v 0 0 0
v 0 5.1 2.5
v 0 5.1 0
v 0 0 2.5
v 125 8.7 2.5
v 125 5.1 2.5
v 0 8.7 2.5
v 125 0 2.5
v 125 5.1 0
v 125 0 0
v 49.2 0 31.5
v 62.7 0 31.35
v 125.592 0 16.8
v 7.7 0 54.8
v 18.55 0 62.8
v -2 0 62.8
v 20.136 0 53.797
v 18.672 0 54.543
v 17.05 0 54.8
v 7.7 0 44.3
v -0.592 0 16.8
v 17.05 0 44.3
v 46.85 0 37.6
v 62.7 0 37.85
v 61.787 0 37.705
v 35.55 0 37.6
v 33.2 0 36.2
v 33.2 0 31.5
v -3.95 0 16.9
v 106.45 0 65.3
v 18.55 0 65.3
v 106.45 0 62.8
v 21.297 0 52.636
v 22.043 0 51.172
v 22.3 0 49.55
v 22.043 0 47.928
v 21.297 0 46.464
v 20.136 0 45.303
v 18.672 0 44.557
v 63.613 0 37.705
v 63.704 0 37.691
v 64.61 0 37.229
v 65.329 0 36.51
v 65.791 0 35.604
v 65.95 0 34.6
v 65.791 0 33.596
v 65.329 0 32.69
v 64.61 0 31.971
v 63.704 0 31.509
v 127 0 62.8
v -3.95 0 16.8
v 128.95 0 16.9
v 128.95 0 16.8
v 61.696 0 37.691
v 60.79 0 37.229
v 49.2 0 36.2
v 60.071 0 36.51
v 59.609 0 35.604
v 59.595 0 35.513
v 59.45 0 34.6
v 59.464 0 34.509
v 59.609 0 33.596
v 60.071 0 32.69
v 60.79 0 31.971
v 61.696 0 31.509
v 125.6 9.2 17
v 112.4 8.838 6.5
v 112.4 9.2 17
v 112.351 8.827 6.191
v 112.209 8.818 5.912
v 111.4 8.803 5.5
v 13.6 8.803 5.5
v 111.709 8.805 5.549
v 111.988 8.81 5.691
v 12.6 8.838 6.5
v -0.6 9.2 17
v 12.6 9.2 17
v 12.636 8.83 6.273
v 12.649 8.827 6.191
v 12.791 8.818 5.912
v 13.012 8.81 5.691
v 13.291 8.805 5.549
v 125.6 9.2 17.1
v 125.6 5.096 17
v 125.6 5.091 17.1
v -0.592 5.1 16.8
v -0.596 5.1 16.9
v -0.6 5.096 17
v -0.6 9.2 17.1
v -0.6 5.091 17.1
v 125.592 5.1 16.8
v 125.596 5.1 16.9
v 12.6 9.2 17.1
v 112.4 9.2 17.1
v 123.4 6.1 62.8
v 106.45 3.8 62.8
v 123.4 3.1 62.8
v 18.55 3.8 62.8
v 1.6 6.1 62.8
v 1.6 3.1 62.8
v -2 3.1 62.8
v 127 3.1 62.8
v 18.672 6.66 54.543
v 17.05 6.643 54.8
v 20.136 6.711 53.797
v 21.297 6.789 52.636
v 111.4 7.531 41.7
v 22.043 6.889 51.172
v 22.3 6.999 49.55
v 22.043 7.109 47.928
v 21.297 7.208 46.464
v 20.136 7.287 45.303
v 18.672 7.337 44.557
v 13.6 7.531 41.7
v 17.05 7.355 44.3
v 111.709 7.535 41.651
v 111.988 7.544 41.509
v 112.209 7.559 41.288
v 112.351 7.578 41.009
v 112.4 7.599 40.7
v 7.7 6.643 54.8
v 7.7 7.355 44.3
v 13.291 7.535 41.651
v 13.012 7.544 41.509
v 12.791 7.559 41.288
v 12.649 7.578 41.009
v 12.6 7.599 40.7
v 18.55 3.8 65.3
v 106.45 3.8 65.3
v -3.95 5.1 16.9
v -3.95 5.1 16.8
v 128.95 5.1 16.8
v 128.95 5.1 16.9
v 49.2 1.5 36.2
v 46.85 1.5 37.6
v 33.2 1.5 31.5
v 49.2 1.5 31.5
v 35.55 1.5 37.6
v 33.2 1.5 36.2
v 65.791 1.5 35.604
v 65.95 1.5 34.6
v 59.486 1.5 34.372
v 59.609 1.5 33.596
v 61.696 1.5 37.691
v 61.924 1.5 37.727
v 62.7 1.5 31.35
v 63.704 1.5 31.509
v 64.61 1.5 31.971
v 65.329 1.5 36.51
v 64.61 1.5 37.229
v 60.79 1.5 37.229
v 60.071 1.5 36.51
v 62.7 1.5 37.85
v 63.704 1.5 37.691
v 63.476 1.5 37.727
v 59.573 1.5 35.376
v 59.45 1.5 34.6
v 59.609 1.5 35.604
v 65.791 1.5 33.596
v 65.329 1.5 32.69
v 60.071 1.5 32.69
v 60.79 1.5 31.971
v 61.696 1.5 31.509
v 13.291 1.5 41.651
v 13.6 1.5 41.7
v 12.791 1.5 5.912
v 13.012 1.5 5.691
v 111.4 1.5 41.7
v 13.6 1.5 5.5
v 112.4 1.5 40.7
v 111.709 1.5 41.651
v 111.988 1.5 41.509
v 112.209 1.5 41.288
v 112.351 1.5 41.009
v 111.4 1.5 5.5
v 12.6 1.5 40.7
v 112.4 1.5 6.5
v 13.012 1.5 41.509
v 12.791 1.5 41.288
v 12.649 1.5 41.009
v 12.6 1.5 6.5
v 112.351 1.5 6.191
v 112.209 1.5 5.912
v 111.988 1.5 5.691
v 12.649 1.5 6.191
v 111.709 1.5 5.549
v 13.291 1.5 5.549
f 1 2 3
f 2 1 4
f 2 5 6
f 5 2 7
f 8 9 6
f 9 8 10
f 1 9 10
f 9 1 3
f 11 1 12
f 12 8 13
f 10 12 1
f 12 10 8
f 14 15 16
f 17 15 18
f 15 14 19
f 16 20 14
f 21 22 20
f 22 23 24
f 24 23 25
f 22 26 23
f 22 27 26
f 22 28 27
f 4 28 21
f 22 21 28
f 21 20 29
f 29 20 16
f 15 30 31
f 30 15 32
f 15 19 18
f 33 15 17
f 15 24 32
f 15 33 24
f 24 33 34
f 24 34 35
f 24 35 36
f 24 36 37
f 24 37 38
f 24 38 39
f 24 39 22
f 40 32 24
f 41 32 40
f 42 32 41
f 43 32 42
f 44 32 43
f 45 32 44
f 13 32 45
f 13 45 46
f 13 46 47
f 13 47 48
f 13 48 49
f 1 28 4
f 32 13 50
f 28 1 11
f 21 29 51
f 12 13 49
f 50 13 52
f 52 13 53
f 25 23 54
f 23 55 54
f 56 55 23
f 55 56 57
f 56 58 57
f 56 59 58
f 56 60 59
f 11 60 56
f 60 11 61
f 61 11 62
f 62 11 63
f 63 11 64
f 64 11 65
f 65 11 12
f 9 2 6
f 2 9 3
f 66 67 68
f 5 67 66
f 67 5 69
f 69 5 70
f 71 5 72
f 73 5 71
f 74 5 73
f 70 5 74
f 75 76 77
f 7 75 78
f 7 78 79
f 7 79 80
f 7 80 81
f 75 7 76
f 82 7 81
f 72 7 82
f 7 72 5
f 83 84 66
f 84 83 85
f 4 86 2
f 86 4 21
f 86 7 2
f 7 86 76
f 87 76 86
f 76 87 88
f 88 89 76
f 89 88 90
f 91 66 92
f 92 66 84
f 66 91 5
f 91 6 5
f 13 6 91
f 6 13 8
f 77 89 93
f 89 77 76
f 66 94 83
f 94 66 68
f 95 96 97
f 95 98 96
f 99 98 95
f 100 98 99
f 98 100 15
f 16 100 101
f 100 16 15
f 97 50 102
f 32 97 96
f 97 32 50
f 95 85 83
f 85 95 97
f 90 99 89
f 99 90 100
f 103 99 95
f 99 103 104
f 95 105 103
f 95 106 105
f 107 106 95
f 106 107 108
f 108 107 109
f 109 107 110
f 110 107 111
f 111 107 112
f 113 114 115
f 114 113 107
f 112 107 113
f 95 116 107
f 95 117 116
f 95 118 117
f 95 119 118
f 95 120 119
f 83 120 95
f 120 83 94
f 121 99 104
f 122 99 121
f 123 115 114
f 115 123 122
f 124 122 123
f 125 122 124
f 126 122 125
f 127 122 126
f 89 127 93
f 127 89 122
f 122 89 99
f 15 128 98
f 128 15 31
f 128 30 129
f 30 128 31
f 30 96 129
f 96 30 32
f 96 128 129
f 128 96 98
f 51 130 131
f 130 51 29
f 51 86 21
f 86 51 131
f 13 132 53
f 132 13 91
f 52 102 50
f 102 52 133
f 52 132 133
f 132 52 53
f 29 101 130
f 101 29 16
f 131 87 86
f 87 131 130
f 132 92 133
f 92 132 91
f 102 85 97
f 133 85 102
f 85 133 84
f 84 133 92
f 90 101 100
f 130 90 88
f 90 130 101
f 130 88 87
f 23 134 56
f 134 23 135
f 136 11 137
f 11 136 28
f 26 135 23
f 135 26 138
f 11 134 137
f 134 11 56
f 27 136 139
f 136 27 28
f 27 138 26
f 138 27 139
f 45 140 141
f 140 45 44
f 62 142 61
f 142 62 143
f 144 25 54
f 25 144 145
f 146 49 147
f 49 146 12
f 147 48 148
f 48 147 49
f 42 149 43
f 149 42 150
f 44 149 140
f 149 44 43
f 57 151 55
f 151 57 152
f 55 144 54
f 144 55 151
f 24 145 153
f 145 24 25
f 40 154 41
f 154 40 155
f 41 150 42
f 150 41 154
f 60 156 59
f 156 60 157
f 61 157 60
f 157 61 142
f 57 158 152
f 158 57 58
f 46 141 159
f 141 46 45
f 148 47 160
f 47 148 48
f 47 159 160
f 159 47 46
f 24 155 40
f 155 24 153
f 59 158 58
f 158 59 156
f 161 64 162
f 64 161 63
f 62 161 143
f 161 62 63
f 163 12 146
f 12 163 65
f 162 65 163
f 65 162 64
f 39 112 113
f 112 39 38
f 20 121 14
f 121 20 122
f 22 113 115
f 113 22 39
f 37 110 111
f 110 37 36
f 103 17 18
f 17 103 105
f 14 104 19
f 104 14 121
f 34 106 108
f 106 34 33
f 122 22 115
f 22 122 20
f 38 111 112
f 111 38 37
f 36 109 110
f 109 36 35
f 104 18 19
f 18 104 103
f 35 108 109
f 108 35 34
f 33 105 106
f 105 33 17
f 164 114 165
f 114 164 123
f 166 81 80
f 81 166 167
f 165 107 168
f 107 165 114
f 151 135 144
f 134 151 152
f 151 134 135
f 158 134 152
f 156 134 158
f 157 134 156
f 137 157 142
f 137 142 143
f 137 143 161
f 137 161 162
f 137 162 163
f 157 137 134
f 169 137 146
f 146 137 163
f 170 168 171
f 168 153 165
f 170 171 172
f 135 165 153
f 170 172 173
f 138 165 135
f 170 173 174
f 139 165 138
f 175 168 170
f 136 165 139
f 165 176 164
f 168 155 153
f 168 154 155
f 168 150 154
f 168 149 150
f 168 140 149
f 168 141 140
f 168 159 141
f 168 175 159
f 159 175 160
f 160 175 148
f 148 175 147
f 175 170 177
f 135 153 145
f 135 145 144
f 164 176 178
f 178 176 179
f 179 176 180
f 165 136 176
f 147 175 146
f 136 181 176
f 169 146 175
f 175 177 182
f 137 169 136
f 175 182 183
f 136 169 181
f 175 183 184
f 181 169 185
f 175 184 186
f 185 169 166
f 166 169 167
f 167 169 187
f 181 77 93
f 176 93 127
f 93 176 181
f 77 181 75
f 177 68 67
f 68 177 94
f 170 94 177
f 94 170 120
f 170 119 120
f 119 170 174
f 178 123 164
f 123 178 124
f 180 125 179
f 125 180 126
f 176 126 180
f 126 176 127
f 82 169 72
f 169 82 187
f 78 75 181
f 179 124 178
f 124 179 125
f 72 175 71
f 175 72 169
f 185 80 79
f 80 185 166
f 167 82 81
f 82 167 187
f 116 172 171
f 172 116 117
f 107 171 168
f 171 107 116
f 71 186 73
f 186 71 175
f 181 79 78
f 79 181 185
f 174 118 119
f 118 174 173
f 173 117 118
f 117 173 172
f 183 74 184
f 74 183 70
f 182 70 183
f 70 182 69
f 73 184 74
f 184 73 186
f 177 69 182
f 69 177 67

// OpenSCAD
difference() {
    back_plate();
    translate([7.7, -0.1, 44.3]) power_jack(d=10);
    translate([-(99.8-125)/2, 1.5, 5.5]) indent(d=10);
    translate([33.7, 10, 37.6]) rotate([-180, 0, 0]) pi_plugs(d=11);
}

//#measure();

module measure() {
    // power jack
    translate([0.75, 8, 45.5])
    cube([7, 0.25, 0.25]);
    translate([10, 6.5, 54.8])
    cube([0.25, 0.25, 8]);
    translate([0.75+7, 8, 49.5])
    cube([14.5, 0.25, 0.25]);

    // hdmi
    translate([0, 2, 32])
    cube([33.25, 0.25, 0.25]);
    translate([40, 2, 2.4])
    cube([0.25, 0.25, 29.25]);
}

module indent(d=1) {
    $fn = 20;
    
    hull() {
        for (x = [2/2, 99.8-2/2]) {
            for (z = [2/2, 36.2-2/2]) {
                translate([x, 0, z]) rotate([-90, 0, 0]) cylinder(d=2, h=d);
            }
        }
    }
}

module pi_plugs(d=1) {
    $fn = 20;
    
    hull() {
        translate([-0.5, 0, 5.6-4.2]) cube([16, d, 4.7]);
        translate([-(11.3-15)/2, 0, 0]) cube([11.3, d, 0.1]);
    }

    translate([32-6/2, 0, 6/2]) rotate([-90, 0, 0]) cylinder(d=6.5, h=d);
}

module power_jack(d=1) {
    $fn = 20;
    hull() {
        cube([0.1, d, 10.5]);
        translate([14.6-(10.5/2), 0, 10.5/2]) rotate([-90, 0, 0]) cylinder(d=10.5, h=d);
    }
}

module back_plate() {
    translate([]) cube([125, 5.1, 2.5]);

    hull() {
        translate([0, 0, 2.5]) cube([125, 8.7, 0.1]);
        translate([-(126.2-125)/2, 0, 17]) cube([126.2, 9.2, 0.1]);
    }

    hull() {
        translate([-(126.2-125)/2, 0, 17]) cube([126.2, 9.2, 0.1]);
        translate([-(121.8-125)/2, 0, 62.7]) cube([121.8, 6.1, 0.1]);
    }
    
    translate([-(87.9-125)/2, 0, 62.7]) cube([87.9, 3.8, 2.6]);

    hull() {
        translate([-(132.9-125)/2, 0, 16.8]) cube([132.9, 5.1, 0.1]);
        translate([-(129-125)/2, 0, 62.7]) cube([129, 3.1, 0.1]);
    }
}
